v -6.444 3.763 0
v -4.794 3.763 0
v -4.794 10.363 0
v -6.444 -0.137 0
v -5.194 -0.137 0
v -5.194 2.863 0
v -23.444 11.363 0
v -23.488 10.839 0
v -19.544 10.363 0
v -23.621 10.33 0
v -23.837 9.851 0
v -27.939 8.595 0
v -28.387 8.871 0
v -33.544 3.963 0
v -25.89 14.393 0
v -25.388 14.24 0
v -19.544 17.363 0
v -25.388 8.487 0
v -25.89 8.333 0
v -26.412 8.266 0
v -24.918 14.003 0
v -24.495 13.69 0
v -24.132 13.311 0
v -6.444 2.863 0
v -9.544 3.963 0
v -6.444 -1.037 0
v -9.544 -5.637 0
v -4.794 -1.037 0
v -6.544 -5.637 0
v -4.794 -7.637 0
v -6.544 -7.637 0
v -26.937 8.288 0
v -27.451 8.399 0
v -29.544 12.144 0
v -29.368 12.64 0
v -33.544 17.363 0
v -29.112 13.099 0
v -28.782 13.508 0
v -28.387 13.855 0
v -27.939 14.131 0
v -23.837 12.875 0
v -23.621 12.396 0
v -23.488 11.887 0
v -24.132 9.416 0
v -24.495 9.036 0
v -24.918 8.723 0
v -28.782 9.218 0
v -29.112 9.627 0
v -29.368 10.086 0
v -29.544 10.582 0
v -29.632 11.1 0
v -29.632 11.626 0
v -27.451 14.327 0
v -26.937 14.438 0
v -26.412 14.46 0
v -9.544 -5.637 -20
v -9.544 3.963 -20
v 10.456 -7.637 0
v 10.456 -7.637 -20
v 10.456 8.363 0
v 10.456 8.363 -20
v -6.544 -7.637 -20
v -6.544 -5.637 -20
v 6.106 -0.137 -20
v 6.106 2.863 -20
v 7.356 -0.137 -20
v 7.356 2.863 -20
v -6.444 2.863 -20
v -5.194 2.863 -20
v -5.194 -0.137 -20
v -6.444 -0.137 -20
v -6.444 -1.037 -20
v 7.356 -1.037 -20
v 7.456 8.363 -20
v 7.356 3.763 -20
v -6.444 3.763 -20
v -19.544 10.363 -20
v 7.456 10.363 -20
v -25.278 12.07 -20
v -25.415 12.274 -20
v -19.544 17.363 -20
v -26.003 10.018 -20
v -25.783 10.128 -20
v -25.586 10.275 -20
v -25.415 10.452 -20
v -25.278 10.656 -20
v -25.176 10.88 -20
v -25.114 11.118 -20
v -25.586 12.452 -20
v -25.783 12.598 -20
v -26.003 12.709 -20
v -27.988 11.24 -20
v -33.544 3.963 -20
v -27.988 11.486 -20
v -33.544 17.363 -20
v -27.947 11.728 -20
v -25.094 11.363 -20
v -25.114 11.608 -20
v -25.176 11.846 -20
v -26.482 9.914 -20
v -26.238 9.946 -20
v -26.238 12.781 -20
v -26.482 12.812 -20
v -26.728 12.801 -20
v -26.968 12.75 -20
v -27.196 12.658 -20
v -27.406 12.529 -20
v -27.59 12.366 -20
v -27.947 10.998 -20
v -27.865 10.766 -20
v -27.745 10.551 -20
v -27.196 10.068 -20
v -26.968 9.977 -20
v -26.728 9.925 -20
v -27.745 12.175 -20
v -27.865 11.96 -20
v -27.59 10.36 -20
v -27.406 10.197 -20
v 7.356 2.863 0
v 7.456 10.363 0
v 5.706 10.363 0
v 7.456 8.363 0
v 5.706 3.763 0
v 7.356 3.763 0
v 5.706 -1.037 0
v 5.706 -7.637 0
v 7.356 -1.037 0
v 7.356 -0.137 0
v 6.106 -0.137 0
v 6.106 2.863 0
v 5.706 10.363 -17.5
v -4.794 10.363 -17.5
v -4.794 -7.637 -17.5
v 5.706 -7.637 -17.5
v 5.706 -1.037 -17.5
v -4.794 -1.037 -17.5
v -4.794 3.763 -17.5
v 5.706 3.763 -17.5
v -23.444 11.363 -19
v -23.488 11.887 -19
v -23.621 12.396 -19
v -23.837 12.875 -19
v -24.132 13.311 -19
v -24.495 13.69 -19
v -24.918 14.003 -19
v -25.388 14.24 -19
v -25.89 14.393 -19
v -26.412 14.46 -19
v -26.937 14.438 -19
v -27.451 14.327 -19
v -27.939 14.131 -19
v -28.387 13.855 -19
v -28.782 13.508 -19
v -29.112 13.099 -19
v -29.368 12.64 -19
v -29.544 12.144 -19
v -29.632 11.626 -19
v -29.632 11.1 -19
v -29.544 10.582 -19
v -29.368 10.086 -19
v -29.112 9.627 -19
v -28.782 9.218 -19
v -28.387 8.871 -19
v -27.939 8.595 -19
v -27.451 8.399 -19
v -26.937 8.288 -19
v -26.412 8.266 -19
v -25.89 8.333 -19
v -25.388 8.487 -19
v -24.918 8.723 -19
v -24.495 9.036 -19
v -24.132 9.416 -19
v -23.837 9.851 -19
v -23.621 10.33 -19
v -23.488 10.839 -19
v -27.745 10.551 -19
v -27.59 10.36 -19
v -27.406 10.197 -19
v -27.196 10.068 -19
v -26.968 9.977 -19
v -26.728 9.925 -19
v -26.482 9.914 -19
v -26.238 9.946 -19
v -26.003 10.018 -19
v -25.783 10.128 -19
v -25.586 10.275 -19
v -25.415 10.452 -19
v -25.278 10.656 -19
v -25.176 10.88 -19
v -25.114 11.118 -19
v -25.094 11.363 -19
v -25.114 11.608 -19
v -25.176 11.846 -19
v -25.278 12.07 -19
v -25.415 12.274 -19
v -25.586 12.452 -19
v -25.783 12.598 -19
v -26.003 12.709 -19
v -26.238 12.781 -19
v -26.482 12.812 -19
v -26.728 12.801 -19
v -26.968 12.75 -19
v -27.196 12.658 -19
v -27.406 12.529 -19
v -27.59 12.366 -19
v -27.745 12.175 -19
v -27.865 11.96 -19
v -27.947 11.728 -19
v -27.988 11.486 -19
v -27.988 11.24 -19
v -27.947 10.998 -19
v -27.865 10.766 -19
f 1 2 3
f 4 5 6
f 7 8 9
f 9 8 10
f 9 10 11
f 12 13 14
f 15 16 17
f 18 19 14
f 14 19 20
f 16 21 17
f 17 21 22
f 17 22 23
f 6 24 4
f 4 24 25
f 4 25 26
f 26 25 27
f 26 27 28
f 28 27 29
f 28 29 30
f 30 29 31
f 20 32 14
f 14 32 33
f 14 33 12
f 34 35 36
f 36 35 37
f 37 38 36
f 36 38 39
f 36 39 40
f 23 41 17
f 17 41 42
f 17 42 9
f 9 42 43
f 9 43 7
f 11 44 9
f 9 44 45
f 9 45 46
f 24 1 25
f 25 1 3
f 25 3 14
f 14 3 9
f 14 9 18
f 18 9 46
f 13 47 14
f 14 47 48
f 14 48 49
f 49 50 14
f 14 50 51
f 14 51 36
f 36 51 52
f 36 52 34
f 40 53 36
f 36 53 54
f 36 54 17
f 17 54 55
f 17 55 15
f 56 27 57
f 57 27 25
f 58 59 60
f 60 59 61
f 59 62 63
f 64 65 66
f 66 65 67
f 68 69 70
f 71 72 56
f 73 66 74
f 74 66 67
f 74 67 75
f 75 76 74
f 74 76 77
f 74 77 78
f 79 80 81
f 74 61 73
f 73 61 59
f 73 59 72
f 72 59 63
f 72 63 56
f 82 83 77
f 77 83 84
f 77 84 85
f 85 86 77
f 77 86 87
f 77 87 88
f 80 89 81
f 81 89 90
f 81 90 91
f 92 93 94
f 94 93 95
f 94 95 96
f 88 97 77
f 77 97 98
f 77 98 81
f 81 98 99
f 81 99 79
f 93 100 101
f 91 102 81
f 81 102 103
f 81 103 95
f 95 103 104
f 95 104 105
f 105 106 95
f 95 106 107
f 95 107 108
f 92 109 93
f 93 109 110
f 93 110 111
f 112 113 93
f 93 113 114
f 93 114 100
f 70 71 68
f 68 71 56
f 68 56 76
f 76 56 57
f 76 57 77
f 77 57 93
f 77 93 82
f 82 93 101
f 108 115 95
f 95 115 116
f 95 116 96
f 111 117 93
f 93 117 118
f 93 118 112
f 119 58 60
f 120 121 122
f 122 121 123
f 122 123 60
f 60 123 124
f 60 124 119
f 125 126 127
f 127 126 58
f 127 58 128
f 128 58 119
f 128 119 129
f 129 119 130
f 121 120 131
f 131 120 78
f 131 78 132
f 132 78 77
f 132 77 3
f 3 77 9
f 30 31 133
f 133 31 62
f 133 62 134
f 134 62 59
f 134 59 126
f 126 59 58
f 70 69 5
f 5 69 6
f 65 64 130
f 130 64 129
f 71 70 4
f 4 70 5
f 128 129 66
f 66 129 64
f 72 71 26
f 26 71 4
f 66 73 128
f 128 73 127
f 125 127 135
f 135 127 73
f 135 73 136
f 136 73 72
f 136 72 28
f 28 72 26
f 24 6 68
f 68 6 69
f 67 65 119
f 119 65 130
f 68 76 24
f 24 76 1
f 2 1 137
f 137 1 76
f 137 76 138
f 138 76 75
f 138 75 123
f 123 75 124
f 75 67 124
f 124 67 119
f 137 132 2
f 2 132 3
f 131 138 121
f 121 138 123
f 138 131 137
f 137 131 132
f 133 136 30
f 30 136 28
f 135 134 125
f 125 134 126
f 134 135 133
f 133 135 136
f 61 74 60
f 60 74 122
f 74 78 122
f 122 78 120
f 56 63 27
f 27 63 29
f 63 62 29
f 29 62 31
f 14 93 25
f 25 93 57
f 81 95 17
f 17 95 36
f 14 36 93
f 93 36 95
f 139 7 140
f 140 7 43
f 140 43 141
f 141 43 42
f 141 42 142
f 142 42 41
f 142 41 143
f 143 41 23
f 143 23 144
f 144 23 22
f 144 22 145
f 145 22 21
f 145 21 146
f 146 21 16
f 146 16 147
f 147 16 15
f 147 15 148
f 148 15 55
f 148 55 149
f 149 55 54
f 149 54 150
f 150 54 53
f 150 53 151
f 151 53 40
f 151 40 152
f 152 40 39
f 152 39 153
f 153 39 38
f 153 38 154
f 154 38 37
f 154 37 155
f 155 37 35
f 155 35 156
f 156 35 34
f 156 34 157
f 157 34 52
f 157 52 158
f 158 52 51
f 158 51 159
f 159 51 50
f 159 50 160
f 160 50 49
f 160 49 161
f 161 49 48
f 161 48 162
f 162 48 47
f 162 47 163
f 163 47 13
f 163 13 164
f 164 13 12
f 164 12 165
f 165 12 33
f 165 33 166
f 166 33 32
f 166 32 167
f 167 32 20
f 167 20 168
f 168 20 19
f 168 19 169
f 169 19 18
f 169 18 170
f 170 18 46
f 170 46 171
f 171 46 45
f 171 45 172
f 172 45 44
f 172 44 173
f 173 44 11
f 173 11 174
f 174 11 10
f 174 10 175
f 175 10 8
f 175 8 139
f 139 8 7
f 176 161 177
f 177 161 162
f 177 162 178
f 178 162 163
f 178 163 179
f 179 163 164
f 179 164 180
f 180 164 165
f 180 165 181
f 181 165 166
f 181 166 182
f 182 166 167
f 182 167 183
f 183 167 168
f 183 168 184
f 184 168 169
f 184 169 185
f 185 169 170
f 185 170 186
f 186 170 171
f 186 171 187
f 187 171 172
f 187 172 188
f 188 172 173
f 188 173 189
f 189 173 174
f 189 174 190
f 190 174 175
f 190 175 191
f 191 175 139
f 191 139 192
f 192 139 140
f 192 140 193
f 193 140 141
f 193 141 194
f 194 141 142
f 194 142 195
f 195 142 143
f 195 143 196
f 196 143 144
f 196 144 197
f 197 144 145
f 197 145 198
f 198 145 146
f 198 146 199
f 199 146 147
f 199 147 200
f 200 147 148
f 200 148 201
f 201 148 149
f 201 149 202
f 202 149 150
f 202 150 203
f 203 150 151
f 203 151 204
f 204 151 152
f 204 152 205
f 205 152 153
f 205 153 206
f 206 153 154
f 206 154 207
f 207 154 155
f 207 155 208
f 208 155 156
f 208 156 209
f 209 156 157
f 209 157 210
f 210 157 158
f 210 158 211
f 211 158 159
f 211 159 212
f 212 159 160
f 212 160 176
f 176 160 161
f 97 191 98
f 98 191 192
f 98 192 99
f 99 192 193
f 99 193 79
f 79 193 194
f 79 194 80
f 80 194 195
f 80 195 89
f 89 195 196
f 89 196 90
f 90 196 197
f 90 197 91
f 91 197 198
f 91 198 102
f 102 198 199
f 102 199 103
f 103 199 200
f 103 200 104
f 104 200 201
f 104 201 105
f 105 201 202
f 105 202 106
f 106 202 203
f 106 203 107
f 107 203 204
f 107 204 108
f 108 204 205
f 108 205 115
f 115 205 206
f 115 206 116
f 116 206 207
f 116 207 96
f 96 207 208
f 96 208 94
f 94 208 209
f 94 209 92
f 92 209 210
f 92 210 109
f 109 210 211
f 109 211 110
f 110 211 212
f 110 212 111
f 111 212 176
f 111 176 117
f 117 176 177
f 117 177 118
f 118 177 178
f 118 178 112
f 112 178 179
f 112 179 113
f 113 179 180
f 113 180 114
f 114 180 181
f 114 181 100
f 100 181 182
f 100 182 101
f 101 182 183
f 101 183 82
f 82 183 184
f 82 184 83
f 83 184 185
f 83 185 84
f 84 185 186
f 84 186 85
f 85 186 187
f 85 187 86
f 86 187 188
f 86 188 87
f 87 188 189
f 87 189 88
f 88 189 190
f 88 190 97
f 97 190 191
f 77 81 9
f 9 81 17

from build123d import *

# Parameters (mm, degrees)
SKETCH1_W           = 20
SKETCH1_H           = 3
BOSS_EXTRUDE1_DEPTH = 20
SKETCH3_W           = 20
SKETCH3_H           = 7.5
BOSS_EXTRUDE2_DEPTH = 20
SKETCH4_W           = 20
SKETCH4_H           = 7.5
BOSS_EXTRUDE3_DEPTH = 20
SKETCH2_W           = 11.3
SKETCH2_H           = 3
CUT_EXTRUDE1_DEPTH  = 20
SKETCH5_W           = 13.8
SKETCH5_H           = 0.9
CUT_EXTRUDE2_DEPTH  = 20
SKETCH6_W           = 10.5
SKETCH6_H           = 6.6
CUT_EXTRUDE3_DEPTH  = 17.5
SKETCH7_W           = 10.5
SKETCH7_H           = 6.6
CUT_EXTRUDE4_DEPTH  = 17.5
SKETCH8_W           = 3
SKETCH8_H           = 2
CUT_EXTRUDE5_DEPTH  = 20
SKETCH9_W           = 20
SKETCH9_H           = 13.4
BOSS_EXTRUDE4_DEPTH = 24
SKETCH10_R          = 3.1
CUT_EXTRUDE6_DEPTH  = 19
SKETCH11_R          = 1.45
CUT_EXTRUDE7_DEPTH  = 20
SKETCH12_W          = 10
SKETCH12_H          = 7
CUT_EXTRUDE8_DEPTH  = 20


with BuildPart() as part:
    # Sketch1 → Boss-Extrude1 (new body)
    with BuildSketch(Plane.XY):
        with Locations((0.456431535, 1.363070539)):
            Rectangle(SKETCH1_W, SKETCH1_H)
    extrude(amount=-BOSS_EXTRUDE1_DEPTH)

    # Sketch3 → Boss-Extrude2 (add)
    with BuildSketch(Plane.XY):
        with Locations((0.456431535, 6.613070539)):
            Rectangle(SKETCH3_W, SKETCH3_H)
    extrude(amount=-BOSS_EXTRUDE2_DEPTH)

    # Sketch4 → Boss-Extrude3 (add)
    with BuildSketch(Plane.XY):
        with Locations((0.456431535, -3.886929461)):
            Rectangle(SKETCH4_W, SKETCH4_H)
    extrude(amount=-BOSS_EXTRUDE3_DEPTH)

    # Sketch2 → Cut-Extrude1 (cut)
    with BuildSketch(Plane.XY):
        with Locations((0.456431535, 1.363070539)):
            Rectangle(SKETCH2_W, SKETCH2_H)
    extrude(amount=-CUT_EXTRUDE1_DEPTH, mode=Mode.SUBTRACT)

    # Sketch5 → Cut-Extrude2 (cut)
    with BuildSketch(Plane.XY):
        with Locations((0.456431535, -0.586929461)):
            Rectangle(SKETCH5_W, SKETCH5_H)
        with Locations((0.456431535, 3.313070539)):
            Rectangle(SKETCH5_W, SKETCH5_H)
    extrude(amount=-CUT_EXTRUDE2_DEPTH, mode=Mode.SUBTRACT)

    # Sketch6 → Cut-Extrude3 (cut)
    with BuildSketch(Plane.XY):
        with Locations((0.456431535, 7.063070539)):
            Rectangle(SKETCH6_W, SKETCH6_H)
    extrude(amount=-CUT_EXTRUDE3_DEPTH, mode=Mode.SUBTRACT)

    # Sketch7 → Cut-Extrude4 (cut)
    with BuildSketch(Plane.XY):
        with Locations((0.456431535, -4.336929461)):
            Rectangle(SKETCH7_W, SKETCH7_H)
    extrude(amount=-CUT_EXTRUDE4_DEPTH, mode=Mode.SUBTRACT)

    # Sketch8 → Cut-Extrude5 (cut)
    with BuildSketch(Plane.XY):
        with Locations((8.956431535, 9.363070539)):
            Rectangle(SKETCH8_W, SKETCH8_H)
        with Locations((-8.043568465, -6.636929461)):
            Rectangle(SKETCH8_W, SKETCH8_H)
    extrude(amount=-CUT_EXTRUDE5_DEPTH, mode=Mode.SUBTRACT)

    # Sketch9 → Boss-Extrude4 (add)
    with BuildSketch(Plane.ZY.offset(9.543568465)):
        with Locations((-10, 10.663070539)):
            Rectangle(SKETCH9_W, SKETCH9_H)
    extrude(amount=BOSS_EXTRUDE4_DEPTH)

    # Sketch10 → Cut-Extrude6 (cut)
    with BuildSketch(Plane.XY):
        with Locations((-26.543568465, 11.363070539)):
            Circle(SKETCH10_R)
    extrude(amount=-CUT_EXTRUDE6_DEPTH, mode=Mode.SUBTRACT)

    # Sketch11 → Cut-Extrude7 (cut)
    with BuildSketch(Plane.XY):
        with Locations((-26.543568465, 11.363070539)):
            Circle(SKETCH11_R)
    extrude(amount=-CUT_EXTRUDE7_DEPTH, mode=Mode.SUBTRACT)

    # Sketch12 → Cut-Extrude8 (cut)
    with BuildSketch(Plane.XY):
        with Locations((-14.543568465, 13.863070539)):
            Rectangle(SKETCH12_W, SKETCH12_H)
    extrude(amount=-CUT_EXTRUDE8_DEPTH, mode=Mode.SUBTRACT)


solid = part.part
